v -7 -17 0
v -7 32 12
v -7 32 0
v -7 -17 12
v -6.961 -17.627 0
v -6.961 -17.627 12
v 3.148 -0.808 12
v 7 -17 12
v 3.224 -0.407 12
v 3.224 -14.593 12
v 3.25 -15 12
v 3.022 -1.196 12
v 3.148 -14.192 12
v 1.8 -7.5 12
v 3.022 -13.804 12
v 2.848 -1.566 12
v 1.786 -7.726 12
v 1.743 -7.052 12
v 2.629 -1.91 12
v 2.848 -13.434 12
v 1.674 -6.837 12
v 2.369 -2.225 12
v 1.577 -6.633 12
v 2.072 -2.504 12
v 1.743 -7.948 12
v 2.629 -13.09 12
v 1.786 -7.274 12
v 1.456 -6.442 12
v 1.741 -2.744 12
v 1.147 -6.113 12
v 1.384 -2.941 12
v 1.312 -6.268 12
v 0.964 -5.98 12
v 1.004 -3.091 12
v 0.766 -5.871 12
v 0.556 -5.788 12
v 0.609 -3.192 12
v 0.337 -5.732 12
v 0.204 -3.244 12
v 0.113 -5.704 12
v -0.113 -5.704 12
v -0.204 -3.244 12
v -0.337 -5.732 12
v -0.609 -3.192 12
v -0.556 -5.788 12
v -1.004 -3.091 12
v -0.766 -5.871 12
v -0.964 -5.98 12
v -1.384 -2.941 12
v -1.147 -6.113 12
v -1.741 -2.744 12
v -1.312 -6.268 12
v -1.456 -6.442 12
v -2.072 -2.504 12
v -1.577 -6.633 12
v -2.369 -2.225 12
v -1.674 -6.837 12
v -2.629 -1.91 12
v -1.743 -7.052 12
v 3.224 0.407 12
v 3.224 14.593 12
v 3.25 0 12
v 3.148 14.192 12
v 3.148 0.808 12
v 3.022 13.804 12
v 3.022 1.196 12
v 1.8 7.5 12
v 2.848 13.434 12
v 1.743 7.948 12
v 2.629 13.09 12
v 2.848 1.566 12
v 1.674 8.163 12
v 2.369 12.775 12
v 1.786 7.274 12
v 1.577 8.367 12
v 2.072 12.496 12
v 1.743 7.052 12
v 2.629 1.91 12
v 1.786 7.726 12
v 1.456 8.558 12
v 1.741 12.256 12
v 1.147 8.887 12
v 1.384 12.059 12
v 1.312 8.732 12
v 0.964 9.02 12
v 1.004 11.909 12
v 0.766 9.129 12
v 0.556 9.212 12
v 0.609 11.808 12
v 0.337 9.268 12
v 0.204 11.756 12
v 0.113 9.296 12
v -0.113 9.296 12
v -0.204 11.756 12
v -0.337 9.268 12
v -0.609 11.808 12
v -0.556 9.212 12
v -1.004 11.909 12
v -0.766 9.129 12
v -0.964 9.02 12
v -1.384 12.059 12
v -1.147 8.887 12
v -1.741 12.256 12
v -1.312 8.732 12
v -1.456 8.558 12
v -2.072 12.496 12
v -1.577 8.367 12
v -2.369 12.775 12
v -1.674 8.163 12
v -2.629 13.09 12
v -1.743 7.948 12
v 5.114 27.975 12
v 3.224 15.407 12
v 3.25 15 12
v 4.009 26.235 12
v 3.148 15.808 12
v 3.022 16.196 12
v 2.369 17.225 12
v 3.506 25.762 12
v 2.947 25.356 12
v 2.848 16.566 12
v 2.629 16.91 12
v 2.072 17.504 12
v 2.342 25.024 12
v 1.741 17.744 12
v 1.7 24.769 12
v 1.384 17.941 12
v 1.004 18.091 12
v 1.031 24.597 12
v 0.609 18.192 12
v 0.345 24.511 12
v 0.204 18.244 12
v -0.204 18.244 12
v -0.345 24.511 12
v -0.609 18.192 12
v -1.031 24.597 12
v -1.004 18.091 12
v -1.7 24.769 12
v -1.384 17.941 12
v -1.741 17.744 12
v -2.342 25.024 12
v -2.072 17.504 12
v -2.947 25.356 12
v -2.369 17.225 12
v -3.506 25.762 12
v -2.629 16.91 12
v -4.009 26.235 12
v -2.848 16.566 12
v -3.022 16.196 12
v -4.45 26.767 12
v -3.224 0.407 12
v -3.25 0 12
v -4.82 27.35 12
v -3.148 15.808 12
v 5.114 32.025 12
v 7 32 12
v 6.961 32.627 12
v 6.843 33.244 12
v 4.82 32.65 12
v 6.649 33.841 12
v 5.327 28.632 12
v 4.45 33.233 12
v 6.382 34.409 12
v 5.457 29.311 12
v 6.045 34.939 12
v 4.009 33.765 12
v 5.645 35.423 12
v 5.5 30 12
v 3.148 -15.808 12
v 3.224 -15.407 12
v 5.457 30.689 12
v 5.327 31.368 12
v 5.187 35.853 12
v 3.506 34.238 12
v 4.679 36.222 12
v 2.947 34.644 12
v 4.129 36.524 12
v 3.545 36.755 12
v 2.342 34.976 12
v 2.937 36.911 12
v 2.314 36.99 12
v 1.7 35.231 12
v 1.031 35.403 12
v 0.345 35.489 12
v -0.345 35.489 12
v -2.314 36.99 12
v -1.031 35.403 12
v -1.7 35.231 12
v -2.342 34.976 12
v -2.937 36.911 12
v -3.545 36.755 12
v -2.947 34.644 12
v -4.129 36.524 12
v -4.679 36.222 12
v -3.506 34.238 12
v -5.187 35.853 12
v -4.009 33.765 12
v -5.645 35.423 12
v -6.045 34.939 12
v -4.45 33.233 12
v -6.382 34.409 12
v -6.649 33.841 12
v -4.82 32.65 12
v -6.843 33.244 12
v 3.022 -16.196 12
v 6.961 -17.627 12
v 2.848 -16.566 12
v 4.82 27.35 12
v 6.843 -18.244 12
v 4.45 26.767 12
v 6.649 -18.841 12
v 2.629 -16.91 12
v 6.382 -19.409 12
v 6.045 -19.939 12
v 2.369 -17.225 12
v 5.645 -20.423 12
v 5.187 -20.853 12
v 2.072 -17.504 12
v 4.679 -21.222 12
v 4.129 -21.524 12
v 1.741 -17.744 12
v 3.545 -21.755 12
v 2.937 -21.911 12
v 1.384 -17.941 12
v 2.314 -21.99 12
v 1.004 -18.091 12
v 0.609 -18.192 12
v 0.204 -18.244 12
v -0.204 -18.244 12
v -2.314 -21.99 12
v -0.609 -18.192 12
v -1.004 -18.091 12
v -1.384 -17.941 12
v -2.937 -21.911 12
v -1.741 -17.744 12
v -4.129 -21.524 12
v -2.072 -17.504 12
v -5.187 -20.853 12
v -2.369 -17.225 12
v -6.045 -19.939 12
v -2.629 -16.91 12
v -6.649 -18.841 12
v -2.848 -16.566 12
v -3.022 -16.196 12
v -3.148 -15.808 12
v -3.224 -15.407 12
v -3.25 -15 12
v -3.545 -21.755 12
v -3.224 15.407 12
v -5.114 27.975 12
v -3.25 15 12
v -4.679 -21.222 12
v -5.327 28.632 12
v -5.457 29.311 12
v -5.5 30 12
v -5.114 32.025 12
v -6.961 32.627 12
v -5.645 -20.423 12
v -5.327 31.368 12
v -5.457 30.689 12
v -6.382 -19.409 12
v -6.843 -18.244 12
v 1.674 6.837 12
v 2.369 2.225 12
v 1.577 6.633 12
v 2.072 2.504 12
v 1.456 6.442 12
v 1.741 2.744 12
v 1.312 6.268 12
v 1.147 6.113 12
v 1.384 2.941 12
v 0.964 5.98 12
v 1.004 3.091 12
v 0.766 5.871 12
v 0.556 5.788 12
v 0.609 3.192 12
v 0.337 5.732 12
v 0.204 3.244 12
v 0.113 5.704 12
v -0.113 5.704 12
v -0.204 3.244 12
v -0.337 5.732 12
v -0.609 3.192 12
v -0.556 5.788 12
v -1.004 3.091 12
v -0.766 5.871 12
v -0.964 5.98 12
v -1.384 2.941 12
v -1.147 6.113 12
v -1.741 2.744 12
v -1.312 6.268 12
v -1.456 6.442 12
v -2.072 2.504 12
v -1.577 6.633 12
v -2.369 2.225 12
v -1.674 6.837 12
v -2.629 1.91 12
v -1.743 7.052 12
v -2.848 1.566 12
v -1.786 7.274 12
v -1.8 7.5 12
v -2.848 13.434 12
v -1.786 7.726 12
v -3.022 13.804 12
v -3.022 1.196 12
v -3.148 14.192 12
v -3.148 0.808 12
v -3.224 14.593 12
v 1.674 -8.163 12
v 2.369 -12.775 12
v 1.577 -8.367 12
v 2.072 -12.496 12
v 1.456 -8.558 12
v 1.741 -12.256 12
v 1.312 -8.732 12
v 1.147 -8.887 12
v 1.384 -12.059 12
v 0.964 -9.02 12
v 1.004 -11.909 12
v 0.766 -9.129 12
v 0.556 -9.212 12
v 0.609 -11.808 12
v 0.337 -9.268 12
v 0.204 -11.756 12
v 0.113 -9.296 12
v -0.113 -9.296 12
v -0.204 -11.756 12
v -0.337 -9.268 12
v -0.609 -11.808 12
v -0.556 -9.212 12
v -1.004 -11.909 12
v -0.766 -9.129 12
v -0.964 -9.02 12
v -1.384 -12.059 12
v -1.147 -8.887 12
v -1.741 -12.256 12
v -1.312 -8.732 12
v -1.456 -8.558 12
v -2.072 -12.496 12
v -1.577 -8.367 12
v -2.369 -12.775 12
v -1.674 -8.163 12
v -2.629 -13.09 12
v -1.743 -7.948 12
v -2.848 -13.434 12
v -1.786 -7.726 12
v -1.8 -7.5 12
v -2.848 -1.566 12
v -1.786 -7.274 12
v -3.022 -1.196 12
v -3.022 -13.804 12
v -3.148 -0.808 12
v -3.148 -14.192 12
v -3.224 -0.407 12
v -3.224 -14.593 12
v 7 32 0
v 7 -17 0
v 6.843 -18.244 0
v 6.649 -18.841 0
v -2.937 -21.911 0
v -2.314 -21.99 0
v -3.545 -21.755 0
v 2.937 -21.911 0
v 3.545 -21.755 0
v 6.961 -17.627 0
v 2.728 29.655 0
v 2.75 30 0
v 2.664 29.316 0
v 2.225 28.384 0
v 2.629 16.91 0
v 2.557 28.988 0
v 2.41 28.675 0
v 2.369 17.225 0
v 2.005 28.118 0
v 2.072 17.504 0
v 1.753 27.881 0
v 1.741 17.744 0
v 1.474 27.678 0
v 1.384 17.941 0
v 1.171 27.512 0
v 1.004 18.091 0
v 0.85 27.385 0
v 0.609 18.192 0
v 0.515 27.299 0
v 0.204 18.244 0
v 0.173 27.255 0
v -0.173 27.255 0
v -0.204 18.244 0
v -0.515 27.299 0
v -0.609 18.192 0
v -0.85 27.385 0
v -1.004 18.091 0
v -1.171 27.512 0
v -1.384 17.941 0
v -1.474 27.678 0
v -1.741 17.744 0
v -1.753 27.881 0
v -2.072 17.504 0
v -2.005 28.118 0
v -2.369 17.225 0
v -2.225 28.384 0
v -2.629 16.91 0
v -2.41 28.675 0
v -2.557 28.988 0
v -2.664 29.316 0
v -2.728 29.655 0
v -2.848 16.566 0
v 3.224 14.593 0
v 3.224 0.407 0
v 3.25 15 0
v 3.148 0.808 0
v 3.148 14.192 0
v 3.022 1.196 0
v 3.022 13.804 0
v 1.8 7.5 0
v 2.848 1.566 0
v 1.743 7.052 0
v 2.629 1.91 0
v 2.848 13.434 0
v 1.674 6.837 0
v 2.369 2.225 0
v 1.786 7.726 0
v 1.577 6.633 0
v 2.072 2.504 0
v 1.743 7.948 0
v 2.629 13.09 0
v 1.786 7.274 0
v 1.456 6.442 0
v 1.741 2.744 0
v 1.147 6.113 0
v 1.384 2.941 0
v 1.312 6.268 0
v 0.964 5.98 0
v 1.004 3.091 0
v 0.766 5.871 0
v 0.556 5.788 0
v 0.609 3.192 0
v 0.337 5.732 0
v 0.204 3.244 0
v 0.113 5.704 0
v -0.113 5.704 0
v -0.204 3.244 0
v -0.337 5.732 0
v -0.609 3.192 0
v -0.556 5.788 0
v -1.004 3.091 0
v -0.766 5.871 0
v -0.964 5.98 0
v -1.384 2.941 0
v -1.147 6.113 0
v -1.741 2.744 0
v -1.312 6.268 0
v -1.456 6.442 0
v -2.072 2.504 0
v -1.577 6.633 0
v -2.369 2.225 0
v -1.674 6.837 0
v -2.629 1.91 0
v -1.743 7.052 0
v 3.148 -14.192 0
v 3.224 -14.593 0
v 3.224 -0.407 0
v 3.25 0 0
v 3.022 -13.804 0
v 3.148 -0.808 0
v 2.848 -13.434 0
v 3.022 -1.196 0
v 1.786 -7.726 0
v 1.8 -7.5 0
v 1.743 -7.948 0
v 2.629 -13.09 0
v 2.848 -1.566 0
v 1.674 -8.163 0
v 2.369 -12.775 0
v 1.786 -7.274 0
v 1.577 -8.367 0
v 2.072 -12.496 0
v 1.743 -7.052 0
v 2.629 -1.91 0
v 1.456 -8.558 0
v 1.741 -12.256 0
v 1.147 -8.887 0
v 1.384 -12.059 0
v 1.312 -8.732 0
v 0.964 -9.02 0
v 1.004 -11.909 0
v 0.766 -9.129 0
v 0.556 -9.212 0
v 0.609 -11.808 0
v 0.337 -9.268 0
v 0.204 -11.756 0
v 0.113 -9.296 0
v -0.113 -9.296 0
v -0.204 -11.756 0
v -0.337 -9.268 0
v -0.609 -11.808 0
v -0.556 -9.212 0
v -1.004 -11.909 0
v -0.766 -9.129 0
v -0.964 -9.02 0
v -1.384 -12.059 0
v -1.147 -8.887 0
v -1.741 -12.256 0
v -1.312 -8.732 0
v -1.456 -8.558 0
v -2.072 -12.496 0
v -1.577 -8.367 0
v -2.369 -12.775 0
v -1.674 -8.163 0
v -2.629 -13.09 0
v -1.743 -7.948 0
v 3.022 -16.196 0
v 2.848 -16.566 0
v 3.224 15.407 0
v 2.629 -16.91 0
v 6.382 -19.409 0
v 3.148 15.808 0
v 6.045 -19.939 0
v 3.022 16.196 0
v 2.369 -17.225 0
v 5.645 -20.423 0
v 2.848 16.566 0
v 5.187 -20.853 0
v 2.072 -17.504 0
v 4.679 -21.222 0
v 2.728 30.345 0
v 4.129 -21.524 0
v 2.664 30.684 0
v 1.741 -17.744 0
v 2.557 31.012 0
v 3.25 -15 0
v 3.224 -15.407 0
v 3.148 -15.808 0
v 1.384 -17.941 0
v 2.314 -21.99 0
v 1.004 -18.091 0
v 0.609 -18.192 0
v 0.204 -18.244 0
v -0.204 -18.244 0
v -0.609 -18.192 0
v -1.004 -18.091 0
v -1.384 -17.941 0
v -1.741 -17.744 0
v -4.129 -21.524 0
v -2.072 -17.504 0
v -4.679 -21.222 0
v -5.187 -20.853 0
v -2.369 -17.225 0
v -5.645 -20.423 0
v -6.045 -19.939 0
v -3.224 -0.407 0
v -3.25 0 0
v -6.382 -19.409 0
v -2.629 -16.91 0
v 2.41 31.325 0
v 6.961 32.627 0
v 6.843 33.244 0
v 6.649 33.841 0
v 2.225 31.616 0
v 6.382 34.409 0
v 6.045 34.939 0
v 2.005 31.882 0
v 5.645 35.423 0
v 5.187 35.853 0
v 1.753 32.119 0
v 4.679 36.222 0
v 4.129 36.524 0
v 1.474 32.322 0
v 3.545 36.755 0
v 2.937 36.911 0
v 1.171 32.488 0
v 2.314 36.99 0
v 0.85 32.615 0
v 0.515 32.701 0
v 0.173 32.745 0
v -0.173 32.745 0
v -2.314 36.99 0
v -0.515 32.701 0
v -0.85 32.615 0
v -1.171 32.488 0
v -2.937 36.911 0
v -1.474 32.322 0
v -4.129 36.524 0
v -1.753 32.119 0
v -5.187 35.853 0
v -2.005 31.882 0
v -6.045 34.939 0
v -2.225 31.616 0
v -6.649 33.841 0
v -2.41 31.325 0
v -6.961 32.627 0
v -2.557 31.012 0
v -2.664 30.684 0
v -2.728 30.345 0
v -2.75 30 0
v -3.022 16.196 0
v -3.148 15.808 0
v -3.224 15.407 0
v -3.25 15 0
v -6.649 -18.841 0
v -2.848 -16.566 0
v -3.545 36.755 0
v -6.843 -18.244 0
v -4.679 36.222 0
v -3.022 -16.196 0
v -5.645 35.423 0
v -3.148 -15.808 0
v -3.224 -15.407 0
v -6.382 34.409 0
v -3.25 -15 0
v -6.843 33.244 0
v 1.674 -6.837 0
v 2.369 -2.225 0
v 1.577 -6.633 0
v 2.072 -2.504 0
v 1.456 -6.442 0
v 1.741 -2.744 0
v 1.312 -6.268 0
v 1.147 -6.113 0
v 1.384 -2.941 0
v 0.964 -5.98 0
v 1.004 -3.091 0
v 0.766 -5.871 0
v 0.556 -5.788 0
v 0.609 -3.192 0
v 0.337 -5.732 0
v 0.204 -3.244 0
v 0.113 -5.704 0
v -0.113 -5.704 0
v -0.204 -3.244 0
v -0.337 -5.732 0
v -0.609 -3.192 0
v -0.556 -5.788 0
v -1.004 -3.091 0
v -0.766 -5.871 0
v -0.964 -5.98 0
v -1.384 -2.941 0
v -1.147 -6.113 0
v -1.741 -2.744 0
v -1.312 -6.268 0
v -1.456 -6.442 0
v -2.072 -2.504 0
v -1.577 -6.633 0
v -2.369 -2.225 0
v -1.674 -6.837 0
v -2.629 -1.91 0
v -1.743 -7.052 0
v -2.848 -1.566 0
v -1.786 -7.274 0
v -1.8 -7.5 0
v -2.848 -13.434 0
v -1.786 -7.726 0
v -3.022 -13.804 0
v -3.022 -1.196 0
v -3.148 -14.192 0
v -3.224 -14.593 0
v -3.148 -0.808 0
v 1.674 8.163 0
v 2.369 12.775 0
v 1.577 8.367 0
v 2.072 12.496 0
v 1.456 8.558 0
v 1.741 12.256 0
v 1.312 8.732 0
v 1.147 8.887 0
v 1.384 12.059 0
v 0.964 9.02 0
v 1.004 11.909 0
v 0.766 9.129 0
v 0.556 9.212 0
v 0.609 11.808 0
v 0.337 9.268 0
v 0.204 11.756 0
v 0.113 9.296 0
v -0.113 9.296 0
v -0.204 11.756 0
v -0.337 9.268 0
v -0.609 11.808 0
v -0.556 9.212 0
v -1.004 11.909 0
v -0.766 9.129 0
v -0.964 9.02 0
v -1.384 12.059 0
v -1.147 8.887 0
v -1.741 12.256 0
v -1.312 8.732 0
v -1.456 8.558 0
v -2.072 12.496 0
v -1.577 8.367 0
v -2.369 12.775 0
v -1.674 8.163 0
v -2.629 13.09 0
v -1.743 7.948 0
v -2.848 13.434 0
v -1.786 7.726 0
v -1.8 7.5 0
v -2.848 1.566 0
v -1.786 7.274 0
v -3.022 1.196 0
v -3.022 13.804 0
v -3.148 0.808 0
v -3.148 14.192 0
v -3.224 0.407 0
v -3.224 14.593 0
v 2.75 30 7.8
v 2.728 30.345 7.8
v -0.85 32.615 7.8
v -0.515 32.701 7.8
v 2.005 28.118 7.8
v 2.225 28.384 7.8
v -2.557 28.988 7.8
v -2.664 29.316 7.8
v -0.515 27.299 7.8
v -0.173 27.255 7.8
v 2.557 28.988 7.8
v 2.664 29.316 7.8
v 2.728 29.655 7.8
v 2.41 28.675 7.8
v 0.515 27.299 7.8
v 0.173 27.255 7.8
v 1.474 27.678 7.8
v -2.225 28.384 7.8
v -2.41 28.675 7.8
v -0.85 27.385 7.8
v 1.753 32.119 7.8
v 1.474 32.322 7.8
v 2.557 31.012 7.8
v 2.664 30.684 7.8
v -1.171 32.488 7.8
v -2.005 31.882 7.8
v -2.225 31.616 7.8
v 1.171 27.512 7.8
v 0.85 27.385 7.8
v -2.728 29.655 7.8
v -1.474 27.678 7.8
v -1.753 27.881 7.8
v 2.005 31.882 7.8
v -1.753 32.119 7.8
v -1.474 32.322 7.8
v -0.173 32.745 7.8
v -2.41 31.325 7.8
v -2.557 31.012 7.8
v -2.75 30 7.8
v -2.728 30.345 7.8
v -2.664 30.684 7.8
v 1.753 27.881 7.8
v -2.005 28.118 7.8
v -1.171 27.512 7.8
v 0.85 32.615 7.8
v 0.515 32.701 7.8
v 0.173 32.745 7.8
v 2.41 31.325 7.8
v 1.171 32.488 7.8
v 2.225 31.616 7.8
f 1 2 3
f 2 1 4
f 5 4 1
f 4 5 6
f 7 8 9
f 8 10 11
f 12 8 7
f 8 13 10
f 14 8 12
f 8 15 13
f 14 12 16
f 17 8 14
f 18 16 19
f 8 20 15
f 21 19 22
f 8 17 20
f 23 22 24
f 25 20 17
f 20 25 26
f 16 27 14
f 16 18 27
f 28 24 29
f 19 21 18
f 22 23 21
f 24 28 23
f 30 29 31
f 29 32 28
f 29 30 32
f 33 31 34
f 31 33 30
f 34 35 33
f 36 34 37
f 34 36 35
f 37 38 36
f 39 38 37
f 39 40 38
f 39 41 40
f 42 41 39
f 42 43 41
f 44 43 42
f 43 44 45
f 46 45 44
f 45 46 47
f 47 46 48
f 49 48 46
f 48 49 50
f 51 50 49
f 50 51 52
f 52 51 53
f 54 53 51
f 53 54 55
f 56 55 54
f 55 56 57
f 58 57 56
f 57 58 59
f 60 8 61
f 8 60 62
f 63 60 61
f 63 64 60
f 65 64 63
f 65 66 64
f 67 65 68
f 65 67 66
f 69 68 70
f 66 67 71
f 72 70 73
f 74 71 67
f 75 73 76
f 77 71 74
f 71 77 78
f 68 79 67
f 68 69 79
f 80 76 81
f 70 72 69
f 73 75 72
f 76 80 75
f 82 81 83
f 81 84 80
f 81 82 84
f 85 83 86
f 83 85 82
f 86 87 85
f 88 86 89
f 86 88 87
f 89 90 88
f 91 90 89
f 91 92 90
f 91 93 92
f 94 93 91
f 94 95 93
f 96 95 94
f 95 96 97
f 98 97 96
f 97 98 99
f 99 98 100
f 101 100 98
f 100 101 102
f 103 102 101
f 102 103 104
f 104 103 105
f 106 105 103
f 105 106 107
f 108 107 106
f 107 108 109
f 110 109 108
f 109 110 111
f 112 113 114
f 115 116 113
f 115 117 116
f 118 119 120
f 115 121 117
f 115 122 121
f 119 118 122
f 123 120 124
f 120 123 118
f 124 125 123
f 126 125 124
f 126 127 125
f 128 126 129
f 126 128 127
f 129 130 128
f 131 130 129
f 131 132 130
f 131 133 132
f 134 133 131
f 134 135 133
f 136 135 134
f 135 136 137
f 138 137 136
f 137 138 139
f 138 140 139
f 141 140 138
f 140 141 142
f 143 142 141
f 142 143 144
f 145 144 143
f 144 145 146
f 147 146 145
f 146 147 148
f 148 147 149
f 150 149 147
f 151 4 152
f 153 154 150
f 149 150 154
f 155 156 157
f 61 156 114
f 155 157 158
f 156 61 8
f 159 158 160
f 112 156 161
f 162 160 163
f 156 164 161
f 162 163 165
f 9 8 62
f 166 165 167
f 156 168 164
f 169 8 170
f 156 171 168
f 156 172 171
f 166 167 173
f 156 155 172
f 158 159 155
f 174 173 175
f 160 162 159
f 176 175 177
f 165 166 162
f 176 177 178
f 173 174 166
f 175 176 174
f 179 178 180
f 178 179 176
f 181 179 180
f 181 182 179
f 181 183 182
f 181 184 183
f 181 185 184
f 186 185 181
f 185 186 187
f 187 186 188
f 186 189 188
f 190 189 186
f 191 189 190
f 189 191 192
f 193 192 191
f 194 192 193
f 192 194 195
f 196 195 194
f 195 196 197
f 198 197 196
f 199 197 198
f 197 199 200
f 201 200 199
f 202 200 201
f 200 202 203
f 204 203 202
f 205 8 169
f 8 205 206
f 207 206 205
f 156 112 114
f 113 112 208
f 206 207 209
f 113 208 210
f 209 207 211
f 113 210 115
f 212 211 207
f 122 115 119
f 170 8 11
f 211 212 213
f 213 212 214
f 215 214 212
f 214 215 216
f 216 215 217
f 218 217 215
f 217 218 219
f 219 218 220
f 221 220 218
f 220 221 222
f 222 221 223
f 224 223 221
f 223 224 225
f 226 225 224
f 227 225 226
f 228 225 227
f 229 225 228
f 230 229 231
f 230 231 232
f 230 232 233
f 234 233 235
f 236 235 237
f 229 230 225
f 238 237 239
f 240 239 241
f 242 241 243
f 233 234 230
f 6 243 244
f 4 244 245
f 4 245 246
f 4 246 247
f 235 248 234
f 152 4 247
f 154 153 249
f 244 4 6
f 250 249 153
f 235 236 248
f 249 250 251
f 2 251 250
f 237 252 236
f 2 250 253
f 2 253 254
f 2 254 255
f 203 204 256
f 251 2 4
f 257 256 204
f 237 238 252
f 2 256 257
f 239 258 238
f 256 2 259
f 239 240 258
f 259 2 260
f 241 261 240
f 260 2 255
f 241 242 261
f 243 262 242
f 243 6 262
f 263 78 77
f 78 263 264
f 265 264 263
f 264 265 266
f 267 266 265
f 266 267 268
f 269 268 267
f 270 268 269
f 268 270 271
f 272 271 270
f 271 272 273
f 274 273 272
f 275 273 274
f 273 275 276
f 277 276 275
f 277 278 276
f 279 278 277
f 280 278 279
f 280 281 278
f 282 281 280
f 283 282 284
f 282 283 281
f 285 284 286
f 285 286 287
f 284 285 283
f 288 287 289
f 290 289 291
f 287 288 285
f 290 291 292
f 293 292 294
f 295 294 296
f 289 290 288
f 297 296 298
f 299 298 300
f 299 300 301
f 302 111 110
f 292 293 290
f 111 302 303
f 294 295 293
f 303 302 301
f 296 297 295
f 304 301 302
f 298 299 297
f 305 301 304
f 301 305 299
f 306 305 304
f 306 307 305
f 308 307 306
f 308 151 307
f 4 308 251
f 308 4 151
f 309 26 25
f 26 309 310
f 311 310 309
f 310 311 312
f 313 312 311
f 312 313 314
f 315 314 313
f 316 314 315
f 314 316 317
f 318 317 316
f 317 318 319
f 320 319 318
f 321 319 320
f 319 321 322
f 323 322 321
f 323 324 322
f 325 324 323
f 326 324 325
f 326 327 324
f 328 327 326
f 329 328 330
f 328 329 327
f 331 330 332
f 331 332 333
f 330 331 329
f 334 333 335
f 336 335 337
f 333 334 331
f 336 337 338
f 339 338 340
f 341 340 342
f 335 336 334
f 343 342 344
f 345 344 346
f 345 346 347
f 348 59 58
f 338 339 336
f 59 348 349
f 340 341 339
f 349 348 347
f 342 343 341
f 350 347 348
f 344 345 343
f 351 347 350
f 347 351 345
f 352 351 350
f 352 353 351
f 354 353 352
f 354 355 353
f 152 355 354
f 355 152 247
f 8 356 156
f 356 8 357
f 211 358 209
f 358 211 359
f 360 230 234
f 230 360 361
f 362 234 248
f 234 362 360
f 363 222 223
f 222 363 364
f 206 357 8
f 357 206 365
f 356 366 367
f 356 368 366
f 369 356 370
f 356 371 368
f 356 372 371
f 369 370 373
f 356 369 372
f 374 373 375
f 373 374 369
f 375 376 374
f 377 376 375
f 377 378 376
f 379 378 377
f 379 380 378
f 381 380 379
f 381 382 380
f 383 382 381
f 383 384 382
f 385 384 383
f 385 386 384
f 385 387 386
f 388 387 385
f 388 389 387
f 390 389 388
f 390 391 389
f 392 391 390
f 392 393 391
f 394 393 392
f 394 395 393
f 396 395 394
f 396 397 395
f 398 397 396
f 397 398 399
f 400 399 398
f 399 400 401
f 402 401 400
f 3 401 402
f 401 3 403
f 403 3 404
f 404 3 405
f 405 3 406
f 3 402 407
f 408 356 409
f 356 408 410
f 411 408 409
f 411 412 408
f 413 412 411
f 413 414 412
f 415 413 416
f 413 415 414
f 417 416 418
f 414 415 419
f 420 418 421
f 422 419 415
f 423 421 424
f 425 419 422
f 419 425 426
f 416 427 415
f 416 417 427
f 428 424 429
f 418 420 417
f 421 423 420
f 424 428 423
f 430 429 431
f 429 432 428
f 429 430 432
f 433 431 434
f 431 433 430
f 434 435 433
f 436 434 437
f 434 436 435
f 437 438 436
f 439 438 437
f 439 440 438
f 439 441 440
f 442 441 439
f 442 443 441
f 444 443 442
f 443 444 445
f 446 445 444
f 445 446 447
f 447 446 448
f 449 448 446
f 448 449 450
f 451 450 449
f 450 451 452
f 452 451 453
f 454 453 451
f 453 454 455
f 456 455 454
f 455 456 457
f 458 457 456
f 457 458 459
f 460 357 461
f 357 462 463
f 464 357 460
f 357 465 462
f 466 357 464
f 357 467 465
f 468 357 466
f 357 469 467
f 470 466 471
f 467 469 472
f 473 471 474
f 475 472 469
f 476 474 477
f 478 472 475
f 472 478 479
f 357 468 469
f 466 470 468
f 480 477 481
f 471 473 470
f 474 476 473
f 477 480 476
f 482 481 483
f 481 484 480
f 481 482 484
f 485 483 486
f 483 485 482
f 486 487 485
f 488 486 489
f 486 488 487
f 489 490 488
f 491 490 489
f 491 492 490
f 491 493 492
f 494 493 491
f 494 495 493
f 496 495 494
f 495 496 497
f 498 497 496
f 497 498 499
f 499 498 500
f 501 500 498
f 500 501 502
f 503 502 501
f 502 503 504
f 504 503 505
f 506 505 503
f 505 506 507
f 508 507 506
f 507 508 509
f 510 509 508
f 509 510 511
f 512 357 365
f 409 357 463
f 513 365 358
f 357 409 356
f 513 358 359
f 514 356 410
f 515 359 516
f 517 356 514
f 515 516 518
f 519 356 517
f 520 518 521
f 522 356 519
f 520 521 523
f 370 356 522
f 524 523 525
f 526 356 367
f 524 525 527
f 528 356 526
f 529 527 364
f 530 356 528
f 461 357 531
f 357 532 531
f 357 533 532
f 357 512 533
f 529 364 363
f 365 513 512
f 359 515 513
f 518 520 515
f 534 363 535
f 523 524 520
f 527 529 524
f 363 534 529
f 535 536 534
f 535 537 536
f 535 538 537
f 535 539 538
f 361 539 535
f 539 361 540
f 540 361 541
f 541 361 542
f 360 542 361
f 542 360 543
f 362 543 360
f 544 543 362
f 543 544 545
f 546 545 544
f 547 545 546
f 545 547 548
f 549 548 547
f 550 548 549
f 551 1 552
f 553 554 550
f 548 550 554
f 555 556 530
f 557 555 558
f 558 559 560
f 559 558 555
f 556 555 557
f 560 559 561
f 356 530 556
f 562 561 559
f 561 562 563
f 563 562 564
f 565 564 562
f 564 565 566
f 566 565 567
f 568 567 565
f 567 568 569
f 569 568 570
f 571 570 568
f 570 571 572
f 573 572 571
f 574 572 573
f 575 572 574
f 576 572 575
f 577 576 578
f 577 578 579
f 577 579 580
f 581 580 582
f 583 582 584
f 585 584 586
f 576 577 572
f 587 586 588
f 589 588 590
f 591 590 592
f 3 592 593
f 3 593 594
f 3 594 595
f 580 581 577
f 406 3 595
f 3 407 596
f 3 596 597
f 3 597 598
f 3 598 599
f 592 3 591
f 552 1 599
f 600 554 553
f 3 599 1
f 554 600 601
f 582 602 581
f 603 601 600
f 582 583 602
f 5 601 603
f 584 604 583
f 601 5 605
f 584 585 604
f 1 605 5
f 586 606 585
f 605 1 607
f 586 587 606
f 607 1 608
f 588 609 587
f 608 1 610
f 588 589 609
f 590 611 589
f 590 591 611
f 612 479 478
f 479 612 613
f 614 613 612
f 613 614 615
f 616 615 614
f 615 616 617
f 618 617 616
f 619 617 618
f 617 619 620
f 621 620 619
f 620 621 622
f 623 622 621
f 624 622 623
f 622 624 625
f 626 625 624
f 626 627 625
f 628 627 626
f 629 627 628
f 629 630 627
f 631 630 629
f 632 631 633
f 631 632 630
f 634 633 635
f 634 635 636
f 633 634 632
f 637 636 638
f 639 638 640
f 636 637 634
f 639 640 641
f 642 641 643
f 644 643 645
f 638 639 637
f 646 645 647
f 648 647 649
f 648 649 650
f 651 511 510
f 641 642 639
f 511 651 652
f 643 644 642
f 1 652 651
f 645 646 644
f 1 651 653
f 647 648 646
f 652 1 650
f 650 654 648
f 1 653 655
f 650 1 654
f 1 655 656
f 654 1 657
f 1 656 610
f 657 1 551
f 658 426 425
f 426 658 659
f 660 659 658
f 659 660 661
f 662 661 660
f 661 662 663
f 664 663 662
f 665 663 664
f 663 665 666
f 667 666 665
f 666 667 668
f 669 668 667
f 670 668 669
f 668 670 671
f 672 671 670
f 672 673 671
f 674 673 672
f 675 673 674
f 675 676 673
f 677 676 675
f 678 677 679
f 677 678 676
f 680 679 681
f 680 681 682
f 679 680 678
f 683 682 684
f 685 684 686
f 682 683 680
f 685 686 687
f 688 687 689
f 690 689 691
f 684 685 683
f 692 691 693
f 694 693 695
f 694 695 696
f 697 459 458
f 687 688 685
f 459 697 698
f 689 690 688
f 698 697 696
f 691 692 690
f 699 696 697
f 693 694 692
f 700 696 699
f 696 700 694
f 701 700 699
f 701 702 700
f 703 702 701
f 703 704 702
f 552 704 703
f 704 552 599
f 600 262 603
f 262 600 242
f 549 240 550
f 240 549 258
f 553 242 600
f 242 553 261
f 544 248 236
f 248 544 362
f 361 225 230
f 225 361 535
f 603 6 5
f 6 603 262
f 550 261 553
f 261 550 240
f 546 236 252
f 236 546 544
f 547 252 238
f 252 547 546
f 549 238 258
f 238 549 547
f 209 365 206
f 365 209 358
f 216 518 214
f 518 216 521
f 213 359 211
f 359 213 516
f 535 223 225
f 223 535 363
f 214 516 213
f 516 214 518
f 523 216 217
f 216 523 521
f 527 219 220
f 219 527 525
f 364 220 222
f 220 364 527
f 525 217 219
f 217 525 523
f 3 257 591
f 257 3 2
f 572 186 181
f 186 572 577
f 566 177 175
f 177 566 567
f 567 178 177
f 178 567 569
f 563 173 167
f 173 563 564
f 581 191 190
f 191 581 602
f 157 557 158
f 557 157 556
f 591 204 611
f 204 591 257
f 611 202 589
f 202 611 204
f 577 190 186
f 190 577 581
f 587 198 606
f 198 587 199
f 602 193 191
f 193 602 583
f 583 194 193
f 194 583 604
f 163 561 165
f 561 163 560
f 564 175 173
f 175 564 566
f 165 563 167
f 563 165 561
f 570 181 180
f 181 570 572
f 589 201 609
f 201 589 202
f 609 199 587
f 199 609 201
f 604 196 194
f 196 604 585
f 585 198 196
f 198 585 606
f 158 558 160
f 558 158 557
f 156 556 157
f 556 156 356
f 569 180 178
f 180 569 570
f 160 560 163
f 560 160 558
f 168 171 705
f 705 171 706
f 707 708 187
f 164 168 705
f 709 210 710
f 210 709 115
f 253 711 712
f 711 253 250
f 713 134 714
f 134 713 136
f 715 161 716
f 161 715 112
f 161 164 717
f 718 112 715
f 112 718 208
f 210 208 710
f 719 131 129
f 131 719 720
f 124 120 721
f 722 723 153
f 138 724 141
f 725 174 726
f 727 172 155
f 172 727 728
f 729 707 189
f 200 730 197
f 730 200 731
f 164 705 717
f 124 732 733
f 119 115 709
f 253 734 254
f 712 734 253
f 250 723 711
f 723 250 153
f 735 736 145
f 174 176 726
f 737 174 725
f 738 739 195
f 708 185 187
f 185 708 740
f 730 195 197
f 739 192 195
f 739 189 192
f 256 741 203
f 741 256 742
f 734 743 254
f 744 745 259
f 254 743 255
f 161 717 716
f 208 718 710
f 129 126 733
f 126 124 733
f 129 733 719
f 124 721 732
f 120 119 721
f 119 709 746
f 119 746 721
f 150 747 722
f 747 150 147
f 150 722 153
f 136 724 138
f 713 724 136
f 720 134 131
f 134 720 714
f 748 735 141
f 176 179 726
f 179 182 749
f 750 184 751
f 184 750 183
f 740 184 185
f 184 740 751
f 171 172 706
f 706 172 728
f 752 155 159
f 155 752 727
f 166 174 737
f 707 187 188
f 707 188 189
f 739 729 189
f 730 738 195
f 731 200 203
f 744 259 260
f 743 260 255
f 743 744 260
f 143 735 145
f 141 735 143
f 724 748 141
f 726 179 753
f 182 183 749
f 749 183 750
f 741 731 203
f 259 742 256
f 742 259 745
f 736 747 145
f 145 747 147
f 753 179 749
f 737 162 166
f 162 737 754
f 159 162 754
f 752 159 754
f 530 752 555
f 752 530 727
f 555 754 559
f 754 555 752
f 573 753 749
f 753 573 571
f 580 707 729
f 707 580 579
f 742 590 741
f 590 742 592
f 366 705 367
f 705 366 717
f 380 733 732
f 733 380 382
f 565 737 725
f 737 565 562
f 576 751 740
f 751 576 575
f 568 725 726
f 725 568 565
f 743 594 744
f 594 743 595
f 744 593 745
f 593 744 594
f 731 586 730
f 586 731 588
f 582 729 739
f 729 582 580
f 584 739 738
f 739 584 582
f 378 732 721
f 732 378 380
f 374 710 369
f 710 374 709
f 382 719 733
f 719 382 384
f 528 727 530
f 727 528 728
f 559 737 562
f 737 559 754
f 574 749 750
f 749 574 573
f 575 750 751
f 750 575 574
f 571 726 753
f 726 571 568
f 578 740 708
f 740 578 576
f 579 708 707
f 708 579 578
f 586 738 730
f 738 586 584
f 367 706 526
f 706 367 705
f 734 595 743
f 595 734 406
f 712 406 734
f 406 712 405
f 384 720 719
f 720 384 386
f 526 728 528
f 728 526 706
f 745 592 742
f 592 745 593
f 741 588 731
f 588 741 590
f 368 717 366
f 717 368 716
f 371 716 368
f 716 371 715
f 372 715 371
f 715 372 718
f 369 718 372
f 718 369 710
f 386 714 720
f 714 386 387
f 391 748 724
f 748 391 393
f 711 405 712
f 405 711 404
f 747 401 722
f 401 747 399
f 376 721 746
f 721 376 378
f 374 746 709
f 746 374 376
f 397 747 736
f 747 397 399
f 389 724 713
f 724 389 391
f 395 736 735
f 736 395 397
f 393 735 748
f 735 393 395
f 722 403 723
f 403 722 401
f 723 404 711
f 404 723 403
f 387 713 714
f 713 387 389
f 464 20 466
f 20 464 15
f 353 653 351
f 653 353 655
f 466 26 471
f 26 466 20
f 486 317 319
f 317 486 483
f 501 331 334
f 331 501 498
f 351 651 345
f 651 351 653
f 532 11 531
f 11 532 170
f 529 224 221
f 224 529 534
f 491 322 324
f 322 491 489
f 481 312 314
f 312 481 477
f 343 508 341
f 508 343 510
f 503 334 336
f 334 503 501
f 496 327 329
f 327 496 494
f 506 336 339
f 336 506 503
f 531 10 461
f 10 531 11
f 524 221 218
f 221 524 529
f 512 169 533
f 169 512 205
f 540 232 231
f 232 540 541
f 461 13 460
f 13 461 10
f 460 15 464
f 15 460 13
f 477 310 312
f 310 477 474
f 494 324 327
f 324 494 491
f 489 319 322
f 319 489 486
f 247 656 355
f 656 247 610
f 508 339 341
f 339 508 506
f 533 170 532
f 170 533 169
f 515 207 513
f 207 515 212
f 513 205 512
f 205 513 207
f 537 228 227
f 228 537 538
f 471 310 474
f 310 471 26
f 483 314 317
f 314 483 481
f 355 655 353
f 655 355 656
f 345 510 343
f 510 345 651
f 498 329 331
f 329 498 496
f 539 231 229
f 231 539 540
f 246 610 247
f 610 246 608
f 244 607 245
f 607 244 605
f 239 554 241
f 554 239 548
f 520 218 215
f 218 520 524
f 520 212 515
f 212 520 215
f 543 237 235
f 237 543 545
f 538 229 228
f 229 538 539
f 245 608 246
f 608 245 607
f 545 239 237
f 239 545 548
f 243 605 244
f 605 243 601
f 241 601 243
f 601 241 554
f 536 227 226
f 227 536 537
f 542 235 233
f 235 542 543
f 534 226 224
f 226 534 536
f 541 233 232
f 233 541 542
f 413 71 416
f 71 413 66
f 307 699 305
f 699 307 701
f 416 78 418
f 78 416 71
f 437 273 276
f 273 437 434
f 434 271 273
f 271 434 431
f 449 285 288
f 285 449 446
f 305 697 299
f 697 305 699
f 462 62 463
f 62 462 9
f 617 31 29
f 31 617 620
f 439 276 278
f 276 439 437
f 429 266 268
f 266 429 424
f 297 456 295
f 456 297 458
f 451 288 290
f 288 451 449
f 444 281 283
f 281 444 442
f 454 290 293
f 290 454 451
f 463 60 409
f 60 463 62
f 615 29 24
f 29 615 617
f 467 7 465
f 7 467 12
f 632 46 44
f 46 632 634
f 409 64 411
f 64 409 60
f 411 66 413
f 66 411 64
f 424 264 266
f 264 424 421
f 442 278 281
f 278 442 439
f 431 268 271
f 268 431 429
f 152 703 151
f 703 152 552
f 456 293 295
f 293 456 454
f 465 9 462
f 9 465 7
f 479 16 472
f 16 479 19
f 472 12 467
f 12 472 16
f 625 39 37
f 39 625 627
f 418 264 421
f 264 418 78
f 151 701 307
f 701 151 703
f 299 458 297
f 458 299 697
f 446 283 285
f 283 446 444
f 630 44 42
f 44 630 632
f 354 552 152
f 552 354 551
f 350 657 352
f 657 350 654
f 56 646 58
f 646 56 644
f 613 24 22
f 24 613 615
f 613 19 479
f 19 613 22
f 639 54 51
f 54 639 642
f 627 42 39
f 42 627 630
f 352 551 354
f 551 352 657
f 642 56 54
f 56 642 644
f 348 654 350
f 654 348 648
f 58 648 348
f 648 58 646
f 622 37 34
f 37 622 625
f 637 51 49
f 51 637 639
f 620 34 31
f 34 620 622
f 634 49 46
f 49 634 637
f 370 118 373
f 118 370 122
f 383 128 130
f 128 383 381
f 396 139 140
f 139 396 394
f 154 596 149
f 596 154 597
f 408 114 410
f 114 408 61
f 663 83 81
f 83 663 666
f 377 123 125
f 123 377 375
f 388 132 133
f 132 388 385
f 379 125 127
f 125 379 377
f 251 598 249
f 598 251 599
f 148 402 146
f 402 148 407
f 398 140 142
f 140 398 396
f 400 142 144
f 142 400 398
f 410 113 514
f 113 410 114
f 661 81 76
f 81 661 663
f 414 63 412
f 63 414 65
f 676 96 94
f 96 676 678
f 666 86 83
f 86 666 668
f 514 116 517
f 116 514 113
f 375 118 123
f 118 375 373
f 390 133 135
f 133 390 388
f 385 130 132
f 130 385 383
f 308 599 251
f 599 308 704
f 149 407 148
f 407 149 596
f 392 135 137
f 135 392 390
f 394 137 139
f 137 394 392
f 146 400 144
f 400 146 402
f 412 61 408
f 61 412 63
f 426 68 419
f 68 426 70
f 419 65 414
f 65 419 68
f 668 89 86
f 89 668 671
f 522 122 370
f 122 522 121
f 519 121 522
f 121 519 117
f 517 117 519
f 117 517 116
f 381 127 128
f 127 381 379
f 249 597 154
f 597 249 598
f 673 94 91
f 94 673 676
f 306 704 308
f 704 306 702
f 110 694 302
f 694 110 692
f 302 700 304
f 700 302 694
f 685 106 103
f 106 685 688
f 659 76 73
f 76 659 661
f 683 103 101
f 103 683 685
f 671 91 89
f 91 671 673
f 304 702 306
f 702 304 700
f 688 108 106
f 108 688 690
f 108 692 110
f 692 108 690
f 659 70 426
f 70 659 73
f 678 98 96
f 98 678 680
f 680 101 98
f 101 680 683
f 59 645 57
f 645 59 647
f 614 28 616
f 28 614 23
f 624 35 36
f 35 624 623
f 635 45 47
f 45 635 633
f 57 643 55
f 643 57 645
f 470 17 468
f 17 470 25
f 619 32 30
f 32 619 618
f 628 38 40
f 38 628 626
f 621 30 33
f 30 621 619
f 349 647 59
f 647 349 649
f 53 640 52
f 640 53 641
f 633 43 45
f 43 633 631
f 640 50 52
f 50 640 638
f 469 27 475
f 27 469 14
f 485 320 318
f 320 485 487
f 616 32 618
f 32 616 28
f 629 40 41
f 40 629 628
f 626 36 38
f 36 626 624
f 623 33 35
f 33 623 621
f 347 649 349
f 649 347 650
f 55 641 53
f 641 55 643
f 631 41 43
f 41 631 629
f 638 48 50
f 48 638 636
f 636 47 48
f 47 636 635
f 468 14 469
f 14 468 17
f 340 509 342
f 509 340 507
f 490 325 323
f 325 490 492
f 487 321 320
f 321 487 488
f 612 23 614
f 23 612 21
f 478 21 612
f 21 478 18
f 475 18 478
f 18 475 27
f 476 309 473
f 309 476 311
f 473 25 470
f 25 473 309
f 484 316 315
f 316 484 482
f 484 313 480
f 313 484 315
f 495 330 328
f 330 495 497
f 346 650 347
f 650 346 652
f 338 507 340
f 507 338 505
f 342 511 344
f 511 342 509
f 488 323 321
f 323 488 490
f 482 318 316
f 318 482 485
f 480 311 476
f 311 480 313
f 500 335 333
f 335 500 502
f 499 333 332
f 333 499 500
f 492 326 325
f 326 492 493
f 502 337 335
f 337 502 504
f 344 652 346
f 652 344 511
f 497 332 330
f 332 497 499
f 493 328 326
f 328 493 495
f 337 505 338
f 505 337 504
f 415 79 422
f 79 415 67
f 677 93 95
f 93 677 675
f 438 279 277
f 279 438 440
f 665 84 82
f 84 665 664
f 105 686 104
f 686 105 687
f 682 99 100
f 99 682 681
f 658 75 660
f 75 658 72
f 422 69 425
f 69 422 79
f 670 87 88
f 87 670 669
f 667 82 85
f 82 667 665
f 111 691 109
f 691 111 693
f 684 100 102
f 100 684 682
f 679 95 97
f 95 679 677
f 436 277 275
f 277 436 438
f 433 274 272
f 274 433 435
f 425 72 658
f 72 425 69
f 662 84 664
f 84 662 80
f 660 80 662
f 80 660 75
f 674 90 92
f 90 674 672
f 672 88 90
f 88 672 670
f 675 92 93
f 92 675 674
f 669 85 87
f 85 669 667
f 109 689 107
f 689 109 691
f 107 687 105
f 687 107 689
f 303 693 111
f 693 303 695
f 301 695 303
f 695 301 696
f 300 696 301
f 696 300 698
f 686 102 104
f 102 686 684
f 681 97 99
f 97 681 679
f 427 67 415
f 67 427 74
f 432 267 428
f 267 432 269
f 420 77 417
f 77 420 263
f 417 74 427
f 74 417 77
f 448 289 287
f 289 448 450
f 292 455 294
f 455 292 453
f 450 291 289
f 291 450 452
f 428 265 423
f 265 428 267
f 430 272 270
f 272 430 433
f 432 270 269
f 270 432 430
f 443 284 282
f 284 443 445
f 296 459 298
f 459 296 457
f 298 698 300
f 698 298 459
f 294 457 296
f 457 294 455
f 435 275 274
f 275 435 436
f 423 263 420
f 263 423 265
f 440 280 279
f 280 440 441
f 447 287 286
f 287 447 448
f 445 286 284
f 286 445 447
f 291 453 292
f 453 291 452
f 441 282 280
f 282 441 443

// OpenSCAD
$fn = 50;


difference() {
	union() {
		hull() {
			translate(v = [-2.0000000000, 17.0000000000, 0]) {
				cylinder(h = 12, r = 5);
			}
			translate(v = [2.0000000000, 17.0000000000, 0]) {
				cylinder(h = 12, r = 5);
			}
			translate(v = [-2.0000000000, -17.0000000000, 0]) {
				cylinder(h = 12, r = 5);
			}
			translate(v = [2.0000000000, -17.0000000000, 0]) {
				cylinder(h = 12, r = 5);
			}
		}
		translate(v = [0.0000000000, 22.5000000000, 0]) {
			hull() {
				translate(v = [-2.0000000000, 9.5000000000, 0]) {
					cylinder(h = 12, r = 5);
				}
				translate(v = [2.0000000000, 9.5000000000, 0]) {
					cylinder(h = 12, r = 5);
				}
				translate(v = [-2.0000000000, -9.5000000000, 0]) {
					cylinder(h = 12, r = 5);
				}
				translate(v = [2.0000000000, -9.5000000000, 0]) {
					cylinder(h = 12, r = 5);
				}
			}
		}
		translate(v = [0.0000000000, 22.5000000000, 0]) {
			hull() {
				translate(v = [-2.0000000000, 9.5000000000, 0]) {
					cylinder(h = 12, r = 5);
				}
				translate(v = [2.0000000000, 9.5000000000, 0]) {
					cylinder(h = 12, r = 5);
				}
				translate(v = [-2.0000000000, -9.5000000000, 0]) {
					cylinder(h = 12, r = 5);
				}
				translate(v = [2.0000000000, -9.5000000000, 0]) {
					cylinder(h = 12, r = 5);
				}
			}
		}
	}
	union() {
		translate(v = [0.0000000000, 30.0000000000, 12]) {
			rotate(a = [0, 0, 0]) {
				difference() {
					union() {
						#translate(v = [0, 0, -12.0000000000]) {
							cylinder(h = 12, r = 2.2500000000);
						}
						#translate(v = [0, 0, -4.2000000000]) {
							cylinder(h = 4.2000000000, r1 = 2.7500000000, r2 = 5.5000000000);
						}
						#translate(v = [0, 0, -12.0000000000]) {
							cylinder(h = 12, r = 2.7500000000);
						}
						#translate(v = [0, 0, -12.0000000000]) {
							cylinder(h = 12, r = 2.2500000000);
						}
					}
					union();
				}
			}
		}
		translate(v = [0.0000000000, 30.0000000000, 12]) {
			rotate(a = [0, 0, 0]) {
				difference() {
					union() {
						#translate(v = [0, 0, -12.0000000000]) {
							cylinder(h = 12, r = 2.2500000000);
						}
						#translate(v = [0, 0, -4.2000000000]) {
							cylinder(h = 4.2000000000, r1 = 2.7500000000, r2 = 5.5000000000);
						}
						#translate(v = [0, 0, -12.0000000000]) {
							cylinder(h = 12, r = 2.7500000000);
						}
						#translate(v = [0, 0, -12.0000000000]) {
							cylinder(h = 12, r = 2.2500000000);
						}
					}
					union();
				}
			}
		}
		translate(v = [0.0000000000, -15.0000000000, 0]) {
			translate(v = [0, 0, -100]) {
				cylinder(h = 200, r = 3.2500000000);
			}
		}
		translate(v = [0, 0, -100]) {
			cylinder(h = 200, r = 3.2500000000);
		}
		translate(v = [0.0000000000, 15.0000000000, 0]) {
			translate(v = [0, 0, -100]) {
				cylinder(h = 200, r = 3.2500000000);
			}
		}
		translate(v = [0.0000000000, -15.0000000000, 0]) {
			translate(v = [0, 0, -100]) {
				cylinder(h = 200, r = 1.8000000000);
			}
		}
		translate(v = [0.0000000000, -7.5000000000, 0]) {
			translate(v = [0, 0, -100]) {
				cylinder(h = 200, r = 1.8000000000);
			}
		}
		translate(v = [0, 0, -100]) {
			cylinder(h = 200, r = 1.8000000000);
		}
		translate(v = [0.0000000000, 7.5000000000, 0]) {
			translate(v = [0, 0, -100]) {
				cylinder(h = 200, r = 1.8000000000);
			}
		}
		translate(v = [0.0000000000, 15.0000000000, 0]) {
			translate(v = [0, 0, -100]) {
				cylinder(h = 200, r = 1.8000000000);
			}
		}
	}
}
